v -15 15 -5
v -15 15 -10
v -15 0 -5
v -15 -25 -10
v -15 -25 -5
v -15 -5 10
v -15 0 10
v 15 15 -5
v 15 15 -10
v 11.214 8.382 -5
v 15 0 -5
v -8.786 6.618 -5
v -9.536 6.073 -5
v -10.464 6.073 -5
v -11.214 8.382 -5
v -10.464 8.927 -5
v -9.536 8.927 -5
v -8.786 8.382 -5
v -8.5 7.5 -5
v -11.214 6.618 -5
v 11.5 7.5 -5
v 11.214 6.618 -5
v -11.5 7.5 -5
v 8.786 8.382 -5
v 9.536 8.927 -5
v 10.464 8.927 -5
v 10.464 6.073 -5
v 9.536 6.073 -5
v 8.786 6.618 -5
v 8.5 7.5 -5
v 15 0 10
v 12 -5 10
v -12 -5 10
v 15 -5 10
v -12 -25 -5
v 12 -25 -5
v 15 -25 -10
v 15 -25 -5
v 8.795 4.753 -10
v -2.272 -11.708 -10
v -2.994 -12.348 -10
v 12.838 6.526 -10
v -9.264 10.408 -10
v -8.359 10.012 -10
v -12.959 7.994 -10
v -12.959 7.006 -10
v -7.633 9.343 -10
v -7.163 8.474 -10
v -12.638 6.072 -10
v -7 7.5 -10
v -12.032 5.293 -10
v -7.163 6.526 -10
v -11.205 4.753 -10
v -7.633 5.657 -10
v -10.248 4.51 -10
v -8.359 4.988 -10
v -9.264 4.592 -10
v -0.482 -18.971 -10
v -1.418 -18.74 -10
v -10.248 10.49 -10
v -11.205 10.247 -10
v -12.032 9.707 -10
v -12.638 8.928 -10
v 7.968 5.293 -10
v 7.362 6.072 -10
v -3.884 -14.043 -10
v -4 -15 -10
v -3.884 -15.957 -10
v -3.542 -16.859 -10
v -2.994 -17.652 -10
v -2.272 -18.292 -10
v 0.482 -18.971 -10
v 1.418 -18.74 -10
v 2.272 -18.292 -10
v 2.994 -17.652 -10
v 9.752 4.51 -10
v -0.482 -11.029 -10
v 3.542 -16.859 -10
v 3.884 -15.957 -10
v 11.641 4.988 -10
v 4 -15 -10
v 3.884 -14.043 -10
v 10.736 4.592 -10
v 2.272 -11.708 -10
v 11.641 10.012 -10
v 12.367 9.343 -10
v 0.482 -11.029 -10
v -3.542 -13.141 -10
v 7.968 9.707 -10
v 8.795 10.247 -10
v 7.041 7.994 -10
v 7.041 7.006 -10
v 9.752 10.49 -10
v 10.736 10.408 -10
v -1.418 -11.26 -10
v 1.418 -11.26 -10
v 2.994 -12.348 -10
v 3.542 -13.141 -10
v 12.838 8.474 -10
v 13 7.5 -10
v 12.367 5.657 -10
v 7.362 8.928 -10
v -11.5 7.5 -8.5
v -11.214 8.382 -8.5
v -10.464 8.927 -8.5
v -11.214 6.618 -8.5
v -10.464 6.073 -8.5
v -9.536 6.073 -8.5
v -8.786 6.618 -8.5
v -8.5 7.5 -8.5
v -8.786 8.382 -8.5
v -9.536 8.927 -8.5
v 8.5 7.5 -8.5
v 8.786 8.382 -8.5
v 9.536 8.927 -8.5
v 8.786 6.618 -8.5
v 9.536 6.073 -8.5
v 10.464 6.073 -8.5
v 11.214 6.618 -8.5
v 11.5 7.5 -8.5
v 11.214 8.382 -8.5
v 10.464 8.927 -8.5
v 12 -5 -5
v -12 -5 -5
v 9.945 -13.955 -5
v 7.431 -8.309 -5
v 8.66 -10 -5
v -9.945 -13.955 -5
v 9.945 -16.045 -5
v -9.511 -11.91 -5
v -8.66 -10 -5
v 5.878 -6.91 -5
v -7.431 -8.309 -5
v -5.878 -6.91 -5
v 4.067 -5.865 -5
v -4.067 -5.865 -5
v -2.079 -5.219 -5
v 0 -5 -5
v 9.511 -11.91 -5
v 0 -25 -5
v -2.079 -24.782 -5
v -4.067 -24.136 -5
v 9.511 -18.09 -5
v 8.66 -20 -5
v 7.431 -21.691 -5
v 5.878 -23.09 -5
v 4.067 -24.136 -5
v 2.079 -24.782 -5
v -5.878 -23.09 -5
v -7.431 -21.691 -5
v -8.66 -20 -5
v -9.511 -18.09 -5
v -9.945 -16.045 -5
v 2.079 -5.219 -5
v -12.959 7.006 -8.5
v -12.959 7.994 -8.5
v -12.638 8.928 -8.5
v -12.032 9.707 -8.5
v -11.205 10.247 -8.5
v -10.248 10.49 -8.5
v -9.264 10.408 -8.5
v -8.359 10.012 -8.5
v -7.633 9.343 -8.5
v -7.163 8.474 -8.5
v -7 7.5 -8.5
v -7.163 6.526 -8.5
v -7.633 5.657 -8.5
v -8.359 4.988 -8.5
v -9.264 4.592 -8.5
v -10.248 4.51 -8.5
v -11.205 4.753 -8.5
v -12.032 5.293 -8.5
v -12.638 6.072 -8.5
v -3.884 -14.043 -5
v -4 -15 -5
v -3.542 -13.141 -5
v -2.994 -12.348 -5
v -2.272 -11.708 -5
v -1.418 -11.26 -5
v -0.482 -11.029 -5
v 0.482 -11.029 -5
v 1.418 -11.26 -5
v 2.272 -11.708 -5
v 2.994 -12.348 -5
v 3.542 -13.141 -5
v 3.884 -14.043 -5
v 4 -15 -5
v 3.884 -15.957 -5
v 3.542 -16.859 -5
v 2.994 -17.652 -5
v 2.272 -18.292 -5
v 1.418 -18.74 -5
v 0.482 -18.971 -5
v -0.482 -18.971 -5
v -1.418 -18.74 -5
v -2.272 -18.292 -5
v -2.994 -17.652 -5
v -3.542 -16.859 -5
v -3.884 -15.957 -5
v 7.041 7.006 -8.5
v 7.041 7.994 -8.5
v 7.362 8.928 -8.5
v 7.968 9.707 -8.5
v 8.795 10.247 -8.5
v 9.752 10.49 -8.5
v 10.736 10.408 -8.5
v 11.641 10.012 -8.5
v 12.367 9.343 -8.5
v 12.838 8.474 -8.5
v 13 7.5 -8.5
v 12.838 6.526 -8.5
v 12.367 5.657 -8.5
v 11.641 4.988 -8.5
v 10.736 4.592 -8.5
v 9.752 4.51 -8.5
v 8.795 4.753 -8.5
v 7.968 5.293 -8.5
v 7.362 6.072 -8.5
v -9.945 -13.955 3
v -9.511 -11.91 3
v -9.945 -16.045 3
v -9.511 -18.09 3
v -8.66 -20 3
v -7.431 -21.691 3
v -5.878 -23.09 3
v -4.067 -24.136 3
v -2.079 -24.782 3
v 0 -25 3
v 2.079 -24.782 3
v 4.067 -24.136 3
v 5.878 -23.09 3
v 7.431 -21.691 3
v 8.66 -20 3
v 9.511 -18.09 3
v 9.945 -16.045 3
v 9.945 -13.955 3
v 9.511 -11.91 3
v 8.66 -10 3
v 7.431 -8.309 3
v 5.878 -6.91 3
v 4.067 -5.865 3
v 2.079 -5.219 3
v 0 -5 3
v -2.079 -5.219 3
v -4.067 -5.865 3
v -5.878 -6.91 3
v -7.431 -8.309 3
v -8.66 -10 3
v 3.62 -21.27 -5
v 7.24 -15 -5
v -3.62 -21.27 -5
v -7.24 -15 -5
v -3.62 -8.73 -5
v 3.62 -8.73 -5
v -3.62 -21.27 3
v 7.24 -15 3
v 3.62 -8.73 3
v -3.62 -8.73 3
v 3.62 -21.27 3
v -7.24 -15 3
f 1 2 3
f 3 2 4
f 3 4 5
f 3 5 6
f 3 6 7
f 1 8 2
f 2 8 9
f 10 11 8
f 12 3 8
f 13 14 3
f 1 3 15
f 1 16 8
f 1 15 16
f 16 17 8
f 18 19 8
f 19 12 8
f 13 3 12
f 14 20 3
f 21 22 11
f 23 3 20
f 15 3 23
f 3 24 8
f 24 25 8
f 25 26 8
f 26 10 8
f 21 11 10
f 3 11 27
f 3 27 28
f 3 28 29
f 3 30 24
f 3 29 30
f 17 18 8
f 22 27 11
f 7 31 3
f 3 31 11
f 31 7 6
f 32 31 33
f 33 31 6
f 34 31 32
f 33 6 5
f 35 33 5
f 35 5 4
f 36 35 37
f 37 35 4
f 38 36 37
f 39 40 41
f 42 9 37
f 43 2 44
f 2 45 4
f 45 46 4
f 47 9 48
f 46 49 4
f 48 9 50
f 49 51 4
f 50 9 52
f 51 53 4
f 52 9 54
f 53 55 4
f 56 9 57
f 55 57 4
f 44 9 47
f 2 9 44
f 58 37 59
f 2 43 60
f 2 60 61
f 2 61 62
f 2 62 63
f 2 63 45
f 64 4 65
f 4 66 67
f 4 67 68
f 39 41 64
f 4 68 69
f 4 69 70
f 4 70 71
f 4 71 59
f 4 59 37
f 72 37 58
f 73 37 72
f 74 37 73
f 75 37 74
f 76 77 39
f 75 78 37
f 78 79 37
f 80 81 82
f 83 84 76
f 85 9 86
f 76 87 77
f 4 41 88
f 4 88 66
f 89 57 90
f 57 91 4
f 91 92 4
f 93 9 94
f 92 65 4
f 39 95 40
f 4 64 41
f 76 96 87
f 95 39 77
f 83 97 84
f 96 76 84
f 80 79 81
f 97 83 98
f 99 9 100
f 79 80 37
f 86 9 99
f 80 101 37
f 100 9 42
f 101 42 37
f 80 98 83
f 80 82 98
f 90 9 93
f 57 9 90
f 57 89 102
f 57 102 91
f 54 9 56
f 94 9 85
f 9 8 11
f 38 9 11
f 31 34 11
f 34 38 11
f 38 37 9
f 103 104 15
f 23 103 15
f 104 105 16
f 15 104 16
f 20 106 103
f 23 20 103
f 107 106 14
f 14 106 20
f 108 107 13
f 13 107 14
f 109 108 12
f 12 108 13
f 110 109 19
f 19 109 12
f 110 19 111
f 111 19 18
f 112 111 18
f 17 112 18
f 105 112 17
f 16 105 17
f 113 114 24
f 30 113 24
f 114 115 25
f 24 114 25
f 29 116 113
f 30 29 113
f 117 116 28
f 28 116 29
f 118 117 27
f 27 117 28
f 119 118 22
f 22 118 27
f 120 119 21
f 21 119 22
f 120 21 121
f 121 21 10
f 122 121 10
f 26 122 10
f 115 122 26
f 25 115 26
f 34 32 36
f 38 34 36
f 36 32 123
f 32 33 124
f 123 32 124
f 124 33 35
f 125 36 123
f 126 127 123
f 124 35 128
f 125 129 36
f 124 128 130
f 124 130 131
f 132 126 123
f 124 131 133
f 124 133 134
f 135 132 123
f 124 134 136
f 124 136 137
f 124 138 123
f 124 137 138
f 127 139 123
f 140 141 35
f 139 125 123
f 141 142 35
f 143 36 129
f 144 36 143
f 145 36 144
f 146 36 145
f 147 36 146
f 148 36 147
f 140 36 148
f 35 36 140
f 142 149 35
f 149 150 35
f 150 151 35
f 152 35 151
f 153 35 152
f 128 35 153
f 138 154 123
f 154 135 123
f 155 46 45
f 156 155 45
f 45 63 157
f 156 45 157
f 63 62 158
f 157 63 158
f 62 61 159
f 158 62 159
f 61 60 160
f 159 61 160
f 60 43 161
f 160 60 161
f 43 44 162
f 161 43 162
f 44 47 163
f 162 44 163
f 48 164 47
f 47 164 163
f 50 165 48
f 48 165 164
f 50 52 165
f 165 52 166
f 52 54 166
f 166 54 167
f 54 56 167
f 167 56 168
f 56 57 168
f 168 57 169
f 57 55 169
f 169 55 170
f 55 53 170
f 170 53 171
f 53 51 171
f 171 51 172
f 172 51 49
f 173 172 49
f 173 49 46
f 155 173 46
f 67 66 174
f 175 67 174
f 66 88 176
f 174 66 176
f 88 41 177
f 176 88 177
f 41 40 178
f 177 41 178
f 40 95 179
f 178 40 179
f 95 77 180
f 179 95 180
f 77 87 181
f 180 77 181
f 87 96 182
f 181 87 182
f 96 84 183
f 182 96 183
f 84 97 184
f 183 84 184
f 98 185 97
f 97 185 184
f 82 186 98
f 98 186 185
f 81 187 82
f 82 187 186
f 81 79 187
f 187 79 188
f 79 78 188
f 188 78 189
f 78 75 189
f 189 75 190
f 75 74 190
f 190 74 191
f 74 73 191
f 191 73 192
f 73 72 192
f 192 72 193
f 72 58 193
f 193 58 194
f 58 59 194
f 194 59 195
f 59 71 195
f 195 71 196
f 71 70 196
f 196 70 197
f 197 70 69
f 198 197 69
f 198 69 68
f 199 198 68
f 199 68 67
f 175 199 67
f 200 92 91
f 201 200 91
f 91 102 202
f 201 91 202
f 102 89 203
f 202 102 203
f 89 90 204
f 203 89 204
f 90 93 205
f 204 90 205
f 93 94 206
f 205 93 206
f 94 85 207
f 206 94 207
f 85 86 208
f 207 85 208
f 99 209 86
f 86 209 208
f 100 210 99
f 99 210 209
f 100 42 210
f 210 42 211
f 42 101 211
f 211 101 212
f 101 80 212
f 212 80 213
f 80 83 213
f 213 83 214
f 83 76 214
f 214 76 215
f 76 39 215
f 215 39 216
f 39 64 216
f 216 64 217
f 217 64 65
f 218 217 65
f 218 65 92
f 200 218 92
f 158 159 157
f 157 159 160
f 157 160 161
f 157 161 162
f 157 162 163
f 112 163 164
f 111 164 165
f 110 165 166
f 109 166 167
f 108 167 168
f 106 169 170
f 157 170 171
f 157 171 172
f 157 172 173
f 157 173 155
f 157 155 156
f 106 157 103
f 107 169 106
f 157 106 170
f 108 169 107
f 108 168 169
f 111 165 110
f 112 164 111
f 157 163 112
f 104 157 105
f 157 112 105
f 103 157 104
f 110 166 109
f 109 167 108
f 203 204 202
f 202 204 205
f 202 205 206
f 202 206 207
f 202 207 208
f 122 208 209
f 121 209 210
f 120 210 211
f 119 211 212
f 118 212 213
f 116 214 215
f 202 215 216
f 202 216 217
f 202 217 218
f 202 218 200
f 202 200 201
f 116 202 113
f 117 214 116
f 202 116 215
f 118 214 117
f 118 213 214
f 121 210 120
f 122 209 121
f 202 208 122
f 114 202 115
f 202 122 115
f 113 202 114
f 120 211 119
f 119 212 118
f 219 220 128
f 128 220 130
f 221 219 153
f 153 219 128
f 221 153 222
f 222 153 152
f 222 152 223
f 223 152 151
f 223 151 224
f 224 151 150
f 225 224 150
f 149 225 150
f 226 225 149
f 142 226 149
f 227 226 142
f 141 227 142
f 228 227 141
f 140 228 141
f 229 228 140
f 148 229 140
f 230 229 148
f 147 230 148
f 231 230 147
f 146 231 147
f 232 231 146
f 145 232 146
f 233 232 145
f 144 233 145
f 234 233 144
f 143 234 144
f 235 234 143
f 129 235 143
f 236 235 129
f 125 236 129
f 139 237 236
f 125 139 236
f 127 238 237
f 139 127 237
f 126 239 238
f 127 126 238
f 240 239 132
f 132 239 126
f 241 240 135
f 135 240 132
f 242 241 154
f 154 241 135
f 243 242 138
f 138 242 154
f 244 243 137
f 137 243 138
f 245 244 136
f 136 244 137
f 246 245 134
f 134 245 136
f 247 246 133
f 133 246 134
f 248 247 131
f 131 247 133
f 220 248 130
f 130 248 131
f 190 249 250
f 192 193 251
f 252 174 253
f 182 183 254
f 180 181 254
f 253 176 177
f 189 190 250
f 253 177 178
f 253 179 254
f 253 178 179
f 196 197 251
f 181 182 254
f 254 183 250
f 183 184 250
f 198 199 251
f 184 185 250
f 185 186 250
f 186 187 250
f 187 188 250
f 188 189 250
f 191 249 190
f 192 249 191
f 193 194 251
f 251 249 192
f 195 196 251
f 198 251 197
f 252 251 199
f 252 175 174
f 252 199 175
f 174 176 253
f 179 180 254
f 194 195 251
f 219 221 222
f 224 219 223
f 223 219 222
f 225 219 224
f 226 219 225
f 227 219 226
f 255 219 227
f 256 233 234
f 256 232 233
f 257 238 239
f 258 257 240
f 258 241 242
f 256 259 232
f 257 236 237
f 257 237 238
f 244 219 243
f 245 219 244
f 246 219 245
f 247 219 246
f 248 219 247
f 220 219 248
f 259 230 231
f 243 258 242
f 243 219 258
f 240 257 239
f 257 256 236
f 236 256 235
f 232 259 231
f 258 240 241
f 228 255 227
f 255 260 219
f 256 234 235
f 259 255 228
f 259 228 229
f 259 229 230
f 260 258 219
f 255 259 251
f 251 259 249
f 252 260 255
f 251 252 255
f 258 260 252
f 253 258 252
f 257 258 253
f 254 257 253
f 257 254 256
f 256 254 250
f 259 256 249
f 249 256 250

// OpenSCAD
module gusset() 
{
	polyhedron(
   	points=[ [0,0,0],[0,20,0],[0,0,-15],[3,0,0],[3,20,0],[3,0,-15]],
   	faces=[ [0,2,1],[3,4,5],[0,1,4,3],[1,2,5,4],[2,0,3,5] ]                                	);
};

module hex(h,w) 
{
	difference()
	{
		cylinder(h=h,r=w,center=true,$fs=1);
		translate([w,0,0])cube(size=[w,w,h*2],center=true);
		translate([-w,0,0])cube(size=[w,w,h*2],center=true);
		rotate(a=[0,0,120])
		{
			translate([w,0,0])cube(size=[w,w,h*2],center=true);
			translate([-w,0,0])cube(size=[w,w,h*2],center=true);
		};
		rotate(a=[0,0,240])
		{
			translate([w,0,0])cube(size=[w,w,h*2],center=true);
			translate([-w,0,0])cube(size=[w,w,h*2],center=true);
		};
	};
};

rotate([180,0,0]) translate([0,0,5]) difference()
{
	union()
	{
		translate([-15,-15,0])
		{ 
			cube(size=[30,40,5], center=false);
		};
		translate([-15,0,-15])
		{ 
			cube(size=[30,5,15], center=false);
		};
		translate([12,5,0])
		{
			gusset();
		};
		translate([-15,5,0])
		{
			gusset();
		};
		translate([0,15,-4]) rotate(a=[0,0,30]) difference()
		{
			cylinder(h=8,r=10,center=true,$fs=1);
			hex(10,12.54);
		};
	};
	translate([-10,-7.5,0])
	{
		cylinder(h=10,r=1.5,center=true,$fs=1);
	};
	translate([10,-7.5,0])
	{
		cylinder(h=10,r=1.5,center=true,$fs=1);
	};
	translate([-10,-7.5,8.5])
	{
		cylinder(h=10,r=3,center=true,$fs=1);
	};
	translate([10,-7.5,8.5])
	{
		cylinder(h=10,r=3,center=true,$fs=1);
	};
	translate([0,15,0])
	{
		cylinder(h=12,r=4,center=true,$fs=1);
	};
};
